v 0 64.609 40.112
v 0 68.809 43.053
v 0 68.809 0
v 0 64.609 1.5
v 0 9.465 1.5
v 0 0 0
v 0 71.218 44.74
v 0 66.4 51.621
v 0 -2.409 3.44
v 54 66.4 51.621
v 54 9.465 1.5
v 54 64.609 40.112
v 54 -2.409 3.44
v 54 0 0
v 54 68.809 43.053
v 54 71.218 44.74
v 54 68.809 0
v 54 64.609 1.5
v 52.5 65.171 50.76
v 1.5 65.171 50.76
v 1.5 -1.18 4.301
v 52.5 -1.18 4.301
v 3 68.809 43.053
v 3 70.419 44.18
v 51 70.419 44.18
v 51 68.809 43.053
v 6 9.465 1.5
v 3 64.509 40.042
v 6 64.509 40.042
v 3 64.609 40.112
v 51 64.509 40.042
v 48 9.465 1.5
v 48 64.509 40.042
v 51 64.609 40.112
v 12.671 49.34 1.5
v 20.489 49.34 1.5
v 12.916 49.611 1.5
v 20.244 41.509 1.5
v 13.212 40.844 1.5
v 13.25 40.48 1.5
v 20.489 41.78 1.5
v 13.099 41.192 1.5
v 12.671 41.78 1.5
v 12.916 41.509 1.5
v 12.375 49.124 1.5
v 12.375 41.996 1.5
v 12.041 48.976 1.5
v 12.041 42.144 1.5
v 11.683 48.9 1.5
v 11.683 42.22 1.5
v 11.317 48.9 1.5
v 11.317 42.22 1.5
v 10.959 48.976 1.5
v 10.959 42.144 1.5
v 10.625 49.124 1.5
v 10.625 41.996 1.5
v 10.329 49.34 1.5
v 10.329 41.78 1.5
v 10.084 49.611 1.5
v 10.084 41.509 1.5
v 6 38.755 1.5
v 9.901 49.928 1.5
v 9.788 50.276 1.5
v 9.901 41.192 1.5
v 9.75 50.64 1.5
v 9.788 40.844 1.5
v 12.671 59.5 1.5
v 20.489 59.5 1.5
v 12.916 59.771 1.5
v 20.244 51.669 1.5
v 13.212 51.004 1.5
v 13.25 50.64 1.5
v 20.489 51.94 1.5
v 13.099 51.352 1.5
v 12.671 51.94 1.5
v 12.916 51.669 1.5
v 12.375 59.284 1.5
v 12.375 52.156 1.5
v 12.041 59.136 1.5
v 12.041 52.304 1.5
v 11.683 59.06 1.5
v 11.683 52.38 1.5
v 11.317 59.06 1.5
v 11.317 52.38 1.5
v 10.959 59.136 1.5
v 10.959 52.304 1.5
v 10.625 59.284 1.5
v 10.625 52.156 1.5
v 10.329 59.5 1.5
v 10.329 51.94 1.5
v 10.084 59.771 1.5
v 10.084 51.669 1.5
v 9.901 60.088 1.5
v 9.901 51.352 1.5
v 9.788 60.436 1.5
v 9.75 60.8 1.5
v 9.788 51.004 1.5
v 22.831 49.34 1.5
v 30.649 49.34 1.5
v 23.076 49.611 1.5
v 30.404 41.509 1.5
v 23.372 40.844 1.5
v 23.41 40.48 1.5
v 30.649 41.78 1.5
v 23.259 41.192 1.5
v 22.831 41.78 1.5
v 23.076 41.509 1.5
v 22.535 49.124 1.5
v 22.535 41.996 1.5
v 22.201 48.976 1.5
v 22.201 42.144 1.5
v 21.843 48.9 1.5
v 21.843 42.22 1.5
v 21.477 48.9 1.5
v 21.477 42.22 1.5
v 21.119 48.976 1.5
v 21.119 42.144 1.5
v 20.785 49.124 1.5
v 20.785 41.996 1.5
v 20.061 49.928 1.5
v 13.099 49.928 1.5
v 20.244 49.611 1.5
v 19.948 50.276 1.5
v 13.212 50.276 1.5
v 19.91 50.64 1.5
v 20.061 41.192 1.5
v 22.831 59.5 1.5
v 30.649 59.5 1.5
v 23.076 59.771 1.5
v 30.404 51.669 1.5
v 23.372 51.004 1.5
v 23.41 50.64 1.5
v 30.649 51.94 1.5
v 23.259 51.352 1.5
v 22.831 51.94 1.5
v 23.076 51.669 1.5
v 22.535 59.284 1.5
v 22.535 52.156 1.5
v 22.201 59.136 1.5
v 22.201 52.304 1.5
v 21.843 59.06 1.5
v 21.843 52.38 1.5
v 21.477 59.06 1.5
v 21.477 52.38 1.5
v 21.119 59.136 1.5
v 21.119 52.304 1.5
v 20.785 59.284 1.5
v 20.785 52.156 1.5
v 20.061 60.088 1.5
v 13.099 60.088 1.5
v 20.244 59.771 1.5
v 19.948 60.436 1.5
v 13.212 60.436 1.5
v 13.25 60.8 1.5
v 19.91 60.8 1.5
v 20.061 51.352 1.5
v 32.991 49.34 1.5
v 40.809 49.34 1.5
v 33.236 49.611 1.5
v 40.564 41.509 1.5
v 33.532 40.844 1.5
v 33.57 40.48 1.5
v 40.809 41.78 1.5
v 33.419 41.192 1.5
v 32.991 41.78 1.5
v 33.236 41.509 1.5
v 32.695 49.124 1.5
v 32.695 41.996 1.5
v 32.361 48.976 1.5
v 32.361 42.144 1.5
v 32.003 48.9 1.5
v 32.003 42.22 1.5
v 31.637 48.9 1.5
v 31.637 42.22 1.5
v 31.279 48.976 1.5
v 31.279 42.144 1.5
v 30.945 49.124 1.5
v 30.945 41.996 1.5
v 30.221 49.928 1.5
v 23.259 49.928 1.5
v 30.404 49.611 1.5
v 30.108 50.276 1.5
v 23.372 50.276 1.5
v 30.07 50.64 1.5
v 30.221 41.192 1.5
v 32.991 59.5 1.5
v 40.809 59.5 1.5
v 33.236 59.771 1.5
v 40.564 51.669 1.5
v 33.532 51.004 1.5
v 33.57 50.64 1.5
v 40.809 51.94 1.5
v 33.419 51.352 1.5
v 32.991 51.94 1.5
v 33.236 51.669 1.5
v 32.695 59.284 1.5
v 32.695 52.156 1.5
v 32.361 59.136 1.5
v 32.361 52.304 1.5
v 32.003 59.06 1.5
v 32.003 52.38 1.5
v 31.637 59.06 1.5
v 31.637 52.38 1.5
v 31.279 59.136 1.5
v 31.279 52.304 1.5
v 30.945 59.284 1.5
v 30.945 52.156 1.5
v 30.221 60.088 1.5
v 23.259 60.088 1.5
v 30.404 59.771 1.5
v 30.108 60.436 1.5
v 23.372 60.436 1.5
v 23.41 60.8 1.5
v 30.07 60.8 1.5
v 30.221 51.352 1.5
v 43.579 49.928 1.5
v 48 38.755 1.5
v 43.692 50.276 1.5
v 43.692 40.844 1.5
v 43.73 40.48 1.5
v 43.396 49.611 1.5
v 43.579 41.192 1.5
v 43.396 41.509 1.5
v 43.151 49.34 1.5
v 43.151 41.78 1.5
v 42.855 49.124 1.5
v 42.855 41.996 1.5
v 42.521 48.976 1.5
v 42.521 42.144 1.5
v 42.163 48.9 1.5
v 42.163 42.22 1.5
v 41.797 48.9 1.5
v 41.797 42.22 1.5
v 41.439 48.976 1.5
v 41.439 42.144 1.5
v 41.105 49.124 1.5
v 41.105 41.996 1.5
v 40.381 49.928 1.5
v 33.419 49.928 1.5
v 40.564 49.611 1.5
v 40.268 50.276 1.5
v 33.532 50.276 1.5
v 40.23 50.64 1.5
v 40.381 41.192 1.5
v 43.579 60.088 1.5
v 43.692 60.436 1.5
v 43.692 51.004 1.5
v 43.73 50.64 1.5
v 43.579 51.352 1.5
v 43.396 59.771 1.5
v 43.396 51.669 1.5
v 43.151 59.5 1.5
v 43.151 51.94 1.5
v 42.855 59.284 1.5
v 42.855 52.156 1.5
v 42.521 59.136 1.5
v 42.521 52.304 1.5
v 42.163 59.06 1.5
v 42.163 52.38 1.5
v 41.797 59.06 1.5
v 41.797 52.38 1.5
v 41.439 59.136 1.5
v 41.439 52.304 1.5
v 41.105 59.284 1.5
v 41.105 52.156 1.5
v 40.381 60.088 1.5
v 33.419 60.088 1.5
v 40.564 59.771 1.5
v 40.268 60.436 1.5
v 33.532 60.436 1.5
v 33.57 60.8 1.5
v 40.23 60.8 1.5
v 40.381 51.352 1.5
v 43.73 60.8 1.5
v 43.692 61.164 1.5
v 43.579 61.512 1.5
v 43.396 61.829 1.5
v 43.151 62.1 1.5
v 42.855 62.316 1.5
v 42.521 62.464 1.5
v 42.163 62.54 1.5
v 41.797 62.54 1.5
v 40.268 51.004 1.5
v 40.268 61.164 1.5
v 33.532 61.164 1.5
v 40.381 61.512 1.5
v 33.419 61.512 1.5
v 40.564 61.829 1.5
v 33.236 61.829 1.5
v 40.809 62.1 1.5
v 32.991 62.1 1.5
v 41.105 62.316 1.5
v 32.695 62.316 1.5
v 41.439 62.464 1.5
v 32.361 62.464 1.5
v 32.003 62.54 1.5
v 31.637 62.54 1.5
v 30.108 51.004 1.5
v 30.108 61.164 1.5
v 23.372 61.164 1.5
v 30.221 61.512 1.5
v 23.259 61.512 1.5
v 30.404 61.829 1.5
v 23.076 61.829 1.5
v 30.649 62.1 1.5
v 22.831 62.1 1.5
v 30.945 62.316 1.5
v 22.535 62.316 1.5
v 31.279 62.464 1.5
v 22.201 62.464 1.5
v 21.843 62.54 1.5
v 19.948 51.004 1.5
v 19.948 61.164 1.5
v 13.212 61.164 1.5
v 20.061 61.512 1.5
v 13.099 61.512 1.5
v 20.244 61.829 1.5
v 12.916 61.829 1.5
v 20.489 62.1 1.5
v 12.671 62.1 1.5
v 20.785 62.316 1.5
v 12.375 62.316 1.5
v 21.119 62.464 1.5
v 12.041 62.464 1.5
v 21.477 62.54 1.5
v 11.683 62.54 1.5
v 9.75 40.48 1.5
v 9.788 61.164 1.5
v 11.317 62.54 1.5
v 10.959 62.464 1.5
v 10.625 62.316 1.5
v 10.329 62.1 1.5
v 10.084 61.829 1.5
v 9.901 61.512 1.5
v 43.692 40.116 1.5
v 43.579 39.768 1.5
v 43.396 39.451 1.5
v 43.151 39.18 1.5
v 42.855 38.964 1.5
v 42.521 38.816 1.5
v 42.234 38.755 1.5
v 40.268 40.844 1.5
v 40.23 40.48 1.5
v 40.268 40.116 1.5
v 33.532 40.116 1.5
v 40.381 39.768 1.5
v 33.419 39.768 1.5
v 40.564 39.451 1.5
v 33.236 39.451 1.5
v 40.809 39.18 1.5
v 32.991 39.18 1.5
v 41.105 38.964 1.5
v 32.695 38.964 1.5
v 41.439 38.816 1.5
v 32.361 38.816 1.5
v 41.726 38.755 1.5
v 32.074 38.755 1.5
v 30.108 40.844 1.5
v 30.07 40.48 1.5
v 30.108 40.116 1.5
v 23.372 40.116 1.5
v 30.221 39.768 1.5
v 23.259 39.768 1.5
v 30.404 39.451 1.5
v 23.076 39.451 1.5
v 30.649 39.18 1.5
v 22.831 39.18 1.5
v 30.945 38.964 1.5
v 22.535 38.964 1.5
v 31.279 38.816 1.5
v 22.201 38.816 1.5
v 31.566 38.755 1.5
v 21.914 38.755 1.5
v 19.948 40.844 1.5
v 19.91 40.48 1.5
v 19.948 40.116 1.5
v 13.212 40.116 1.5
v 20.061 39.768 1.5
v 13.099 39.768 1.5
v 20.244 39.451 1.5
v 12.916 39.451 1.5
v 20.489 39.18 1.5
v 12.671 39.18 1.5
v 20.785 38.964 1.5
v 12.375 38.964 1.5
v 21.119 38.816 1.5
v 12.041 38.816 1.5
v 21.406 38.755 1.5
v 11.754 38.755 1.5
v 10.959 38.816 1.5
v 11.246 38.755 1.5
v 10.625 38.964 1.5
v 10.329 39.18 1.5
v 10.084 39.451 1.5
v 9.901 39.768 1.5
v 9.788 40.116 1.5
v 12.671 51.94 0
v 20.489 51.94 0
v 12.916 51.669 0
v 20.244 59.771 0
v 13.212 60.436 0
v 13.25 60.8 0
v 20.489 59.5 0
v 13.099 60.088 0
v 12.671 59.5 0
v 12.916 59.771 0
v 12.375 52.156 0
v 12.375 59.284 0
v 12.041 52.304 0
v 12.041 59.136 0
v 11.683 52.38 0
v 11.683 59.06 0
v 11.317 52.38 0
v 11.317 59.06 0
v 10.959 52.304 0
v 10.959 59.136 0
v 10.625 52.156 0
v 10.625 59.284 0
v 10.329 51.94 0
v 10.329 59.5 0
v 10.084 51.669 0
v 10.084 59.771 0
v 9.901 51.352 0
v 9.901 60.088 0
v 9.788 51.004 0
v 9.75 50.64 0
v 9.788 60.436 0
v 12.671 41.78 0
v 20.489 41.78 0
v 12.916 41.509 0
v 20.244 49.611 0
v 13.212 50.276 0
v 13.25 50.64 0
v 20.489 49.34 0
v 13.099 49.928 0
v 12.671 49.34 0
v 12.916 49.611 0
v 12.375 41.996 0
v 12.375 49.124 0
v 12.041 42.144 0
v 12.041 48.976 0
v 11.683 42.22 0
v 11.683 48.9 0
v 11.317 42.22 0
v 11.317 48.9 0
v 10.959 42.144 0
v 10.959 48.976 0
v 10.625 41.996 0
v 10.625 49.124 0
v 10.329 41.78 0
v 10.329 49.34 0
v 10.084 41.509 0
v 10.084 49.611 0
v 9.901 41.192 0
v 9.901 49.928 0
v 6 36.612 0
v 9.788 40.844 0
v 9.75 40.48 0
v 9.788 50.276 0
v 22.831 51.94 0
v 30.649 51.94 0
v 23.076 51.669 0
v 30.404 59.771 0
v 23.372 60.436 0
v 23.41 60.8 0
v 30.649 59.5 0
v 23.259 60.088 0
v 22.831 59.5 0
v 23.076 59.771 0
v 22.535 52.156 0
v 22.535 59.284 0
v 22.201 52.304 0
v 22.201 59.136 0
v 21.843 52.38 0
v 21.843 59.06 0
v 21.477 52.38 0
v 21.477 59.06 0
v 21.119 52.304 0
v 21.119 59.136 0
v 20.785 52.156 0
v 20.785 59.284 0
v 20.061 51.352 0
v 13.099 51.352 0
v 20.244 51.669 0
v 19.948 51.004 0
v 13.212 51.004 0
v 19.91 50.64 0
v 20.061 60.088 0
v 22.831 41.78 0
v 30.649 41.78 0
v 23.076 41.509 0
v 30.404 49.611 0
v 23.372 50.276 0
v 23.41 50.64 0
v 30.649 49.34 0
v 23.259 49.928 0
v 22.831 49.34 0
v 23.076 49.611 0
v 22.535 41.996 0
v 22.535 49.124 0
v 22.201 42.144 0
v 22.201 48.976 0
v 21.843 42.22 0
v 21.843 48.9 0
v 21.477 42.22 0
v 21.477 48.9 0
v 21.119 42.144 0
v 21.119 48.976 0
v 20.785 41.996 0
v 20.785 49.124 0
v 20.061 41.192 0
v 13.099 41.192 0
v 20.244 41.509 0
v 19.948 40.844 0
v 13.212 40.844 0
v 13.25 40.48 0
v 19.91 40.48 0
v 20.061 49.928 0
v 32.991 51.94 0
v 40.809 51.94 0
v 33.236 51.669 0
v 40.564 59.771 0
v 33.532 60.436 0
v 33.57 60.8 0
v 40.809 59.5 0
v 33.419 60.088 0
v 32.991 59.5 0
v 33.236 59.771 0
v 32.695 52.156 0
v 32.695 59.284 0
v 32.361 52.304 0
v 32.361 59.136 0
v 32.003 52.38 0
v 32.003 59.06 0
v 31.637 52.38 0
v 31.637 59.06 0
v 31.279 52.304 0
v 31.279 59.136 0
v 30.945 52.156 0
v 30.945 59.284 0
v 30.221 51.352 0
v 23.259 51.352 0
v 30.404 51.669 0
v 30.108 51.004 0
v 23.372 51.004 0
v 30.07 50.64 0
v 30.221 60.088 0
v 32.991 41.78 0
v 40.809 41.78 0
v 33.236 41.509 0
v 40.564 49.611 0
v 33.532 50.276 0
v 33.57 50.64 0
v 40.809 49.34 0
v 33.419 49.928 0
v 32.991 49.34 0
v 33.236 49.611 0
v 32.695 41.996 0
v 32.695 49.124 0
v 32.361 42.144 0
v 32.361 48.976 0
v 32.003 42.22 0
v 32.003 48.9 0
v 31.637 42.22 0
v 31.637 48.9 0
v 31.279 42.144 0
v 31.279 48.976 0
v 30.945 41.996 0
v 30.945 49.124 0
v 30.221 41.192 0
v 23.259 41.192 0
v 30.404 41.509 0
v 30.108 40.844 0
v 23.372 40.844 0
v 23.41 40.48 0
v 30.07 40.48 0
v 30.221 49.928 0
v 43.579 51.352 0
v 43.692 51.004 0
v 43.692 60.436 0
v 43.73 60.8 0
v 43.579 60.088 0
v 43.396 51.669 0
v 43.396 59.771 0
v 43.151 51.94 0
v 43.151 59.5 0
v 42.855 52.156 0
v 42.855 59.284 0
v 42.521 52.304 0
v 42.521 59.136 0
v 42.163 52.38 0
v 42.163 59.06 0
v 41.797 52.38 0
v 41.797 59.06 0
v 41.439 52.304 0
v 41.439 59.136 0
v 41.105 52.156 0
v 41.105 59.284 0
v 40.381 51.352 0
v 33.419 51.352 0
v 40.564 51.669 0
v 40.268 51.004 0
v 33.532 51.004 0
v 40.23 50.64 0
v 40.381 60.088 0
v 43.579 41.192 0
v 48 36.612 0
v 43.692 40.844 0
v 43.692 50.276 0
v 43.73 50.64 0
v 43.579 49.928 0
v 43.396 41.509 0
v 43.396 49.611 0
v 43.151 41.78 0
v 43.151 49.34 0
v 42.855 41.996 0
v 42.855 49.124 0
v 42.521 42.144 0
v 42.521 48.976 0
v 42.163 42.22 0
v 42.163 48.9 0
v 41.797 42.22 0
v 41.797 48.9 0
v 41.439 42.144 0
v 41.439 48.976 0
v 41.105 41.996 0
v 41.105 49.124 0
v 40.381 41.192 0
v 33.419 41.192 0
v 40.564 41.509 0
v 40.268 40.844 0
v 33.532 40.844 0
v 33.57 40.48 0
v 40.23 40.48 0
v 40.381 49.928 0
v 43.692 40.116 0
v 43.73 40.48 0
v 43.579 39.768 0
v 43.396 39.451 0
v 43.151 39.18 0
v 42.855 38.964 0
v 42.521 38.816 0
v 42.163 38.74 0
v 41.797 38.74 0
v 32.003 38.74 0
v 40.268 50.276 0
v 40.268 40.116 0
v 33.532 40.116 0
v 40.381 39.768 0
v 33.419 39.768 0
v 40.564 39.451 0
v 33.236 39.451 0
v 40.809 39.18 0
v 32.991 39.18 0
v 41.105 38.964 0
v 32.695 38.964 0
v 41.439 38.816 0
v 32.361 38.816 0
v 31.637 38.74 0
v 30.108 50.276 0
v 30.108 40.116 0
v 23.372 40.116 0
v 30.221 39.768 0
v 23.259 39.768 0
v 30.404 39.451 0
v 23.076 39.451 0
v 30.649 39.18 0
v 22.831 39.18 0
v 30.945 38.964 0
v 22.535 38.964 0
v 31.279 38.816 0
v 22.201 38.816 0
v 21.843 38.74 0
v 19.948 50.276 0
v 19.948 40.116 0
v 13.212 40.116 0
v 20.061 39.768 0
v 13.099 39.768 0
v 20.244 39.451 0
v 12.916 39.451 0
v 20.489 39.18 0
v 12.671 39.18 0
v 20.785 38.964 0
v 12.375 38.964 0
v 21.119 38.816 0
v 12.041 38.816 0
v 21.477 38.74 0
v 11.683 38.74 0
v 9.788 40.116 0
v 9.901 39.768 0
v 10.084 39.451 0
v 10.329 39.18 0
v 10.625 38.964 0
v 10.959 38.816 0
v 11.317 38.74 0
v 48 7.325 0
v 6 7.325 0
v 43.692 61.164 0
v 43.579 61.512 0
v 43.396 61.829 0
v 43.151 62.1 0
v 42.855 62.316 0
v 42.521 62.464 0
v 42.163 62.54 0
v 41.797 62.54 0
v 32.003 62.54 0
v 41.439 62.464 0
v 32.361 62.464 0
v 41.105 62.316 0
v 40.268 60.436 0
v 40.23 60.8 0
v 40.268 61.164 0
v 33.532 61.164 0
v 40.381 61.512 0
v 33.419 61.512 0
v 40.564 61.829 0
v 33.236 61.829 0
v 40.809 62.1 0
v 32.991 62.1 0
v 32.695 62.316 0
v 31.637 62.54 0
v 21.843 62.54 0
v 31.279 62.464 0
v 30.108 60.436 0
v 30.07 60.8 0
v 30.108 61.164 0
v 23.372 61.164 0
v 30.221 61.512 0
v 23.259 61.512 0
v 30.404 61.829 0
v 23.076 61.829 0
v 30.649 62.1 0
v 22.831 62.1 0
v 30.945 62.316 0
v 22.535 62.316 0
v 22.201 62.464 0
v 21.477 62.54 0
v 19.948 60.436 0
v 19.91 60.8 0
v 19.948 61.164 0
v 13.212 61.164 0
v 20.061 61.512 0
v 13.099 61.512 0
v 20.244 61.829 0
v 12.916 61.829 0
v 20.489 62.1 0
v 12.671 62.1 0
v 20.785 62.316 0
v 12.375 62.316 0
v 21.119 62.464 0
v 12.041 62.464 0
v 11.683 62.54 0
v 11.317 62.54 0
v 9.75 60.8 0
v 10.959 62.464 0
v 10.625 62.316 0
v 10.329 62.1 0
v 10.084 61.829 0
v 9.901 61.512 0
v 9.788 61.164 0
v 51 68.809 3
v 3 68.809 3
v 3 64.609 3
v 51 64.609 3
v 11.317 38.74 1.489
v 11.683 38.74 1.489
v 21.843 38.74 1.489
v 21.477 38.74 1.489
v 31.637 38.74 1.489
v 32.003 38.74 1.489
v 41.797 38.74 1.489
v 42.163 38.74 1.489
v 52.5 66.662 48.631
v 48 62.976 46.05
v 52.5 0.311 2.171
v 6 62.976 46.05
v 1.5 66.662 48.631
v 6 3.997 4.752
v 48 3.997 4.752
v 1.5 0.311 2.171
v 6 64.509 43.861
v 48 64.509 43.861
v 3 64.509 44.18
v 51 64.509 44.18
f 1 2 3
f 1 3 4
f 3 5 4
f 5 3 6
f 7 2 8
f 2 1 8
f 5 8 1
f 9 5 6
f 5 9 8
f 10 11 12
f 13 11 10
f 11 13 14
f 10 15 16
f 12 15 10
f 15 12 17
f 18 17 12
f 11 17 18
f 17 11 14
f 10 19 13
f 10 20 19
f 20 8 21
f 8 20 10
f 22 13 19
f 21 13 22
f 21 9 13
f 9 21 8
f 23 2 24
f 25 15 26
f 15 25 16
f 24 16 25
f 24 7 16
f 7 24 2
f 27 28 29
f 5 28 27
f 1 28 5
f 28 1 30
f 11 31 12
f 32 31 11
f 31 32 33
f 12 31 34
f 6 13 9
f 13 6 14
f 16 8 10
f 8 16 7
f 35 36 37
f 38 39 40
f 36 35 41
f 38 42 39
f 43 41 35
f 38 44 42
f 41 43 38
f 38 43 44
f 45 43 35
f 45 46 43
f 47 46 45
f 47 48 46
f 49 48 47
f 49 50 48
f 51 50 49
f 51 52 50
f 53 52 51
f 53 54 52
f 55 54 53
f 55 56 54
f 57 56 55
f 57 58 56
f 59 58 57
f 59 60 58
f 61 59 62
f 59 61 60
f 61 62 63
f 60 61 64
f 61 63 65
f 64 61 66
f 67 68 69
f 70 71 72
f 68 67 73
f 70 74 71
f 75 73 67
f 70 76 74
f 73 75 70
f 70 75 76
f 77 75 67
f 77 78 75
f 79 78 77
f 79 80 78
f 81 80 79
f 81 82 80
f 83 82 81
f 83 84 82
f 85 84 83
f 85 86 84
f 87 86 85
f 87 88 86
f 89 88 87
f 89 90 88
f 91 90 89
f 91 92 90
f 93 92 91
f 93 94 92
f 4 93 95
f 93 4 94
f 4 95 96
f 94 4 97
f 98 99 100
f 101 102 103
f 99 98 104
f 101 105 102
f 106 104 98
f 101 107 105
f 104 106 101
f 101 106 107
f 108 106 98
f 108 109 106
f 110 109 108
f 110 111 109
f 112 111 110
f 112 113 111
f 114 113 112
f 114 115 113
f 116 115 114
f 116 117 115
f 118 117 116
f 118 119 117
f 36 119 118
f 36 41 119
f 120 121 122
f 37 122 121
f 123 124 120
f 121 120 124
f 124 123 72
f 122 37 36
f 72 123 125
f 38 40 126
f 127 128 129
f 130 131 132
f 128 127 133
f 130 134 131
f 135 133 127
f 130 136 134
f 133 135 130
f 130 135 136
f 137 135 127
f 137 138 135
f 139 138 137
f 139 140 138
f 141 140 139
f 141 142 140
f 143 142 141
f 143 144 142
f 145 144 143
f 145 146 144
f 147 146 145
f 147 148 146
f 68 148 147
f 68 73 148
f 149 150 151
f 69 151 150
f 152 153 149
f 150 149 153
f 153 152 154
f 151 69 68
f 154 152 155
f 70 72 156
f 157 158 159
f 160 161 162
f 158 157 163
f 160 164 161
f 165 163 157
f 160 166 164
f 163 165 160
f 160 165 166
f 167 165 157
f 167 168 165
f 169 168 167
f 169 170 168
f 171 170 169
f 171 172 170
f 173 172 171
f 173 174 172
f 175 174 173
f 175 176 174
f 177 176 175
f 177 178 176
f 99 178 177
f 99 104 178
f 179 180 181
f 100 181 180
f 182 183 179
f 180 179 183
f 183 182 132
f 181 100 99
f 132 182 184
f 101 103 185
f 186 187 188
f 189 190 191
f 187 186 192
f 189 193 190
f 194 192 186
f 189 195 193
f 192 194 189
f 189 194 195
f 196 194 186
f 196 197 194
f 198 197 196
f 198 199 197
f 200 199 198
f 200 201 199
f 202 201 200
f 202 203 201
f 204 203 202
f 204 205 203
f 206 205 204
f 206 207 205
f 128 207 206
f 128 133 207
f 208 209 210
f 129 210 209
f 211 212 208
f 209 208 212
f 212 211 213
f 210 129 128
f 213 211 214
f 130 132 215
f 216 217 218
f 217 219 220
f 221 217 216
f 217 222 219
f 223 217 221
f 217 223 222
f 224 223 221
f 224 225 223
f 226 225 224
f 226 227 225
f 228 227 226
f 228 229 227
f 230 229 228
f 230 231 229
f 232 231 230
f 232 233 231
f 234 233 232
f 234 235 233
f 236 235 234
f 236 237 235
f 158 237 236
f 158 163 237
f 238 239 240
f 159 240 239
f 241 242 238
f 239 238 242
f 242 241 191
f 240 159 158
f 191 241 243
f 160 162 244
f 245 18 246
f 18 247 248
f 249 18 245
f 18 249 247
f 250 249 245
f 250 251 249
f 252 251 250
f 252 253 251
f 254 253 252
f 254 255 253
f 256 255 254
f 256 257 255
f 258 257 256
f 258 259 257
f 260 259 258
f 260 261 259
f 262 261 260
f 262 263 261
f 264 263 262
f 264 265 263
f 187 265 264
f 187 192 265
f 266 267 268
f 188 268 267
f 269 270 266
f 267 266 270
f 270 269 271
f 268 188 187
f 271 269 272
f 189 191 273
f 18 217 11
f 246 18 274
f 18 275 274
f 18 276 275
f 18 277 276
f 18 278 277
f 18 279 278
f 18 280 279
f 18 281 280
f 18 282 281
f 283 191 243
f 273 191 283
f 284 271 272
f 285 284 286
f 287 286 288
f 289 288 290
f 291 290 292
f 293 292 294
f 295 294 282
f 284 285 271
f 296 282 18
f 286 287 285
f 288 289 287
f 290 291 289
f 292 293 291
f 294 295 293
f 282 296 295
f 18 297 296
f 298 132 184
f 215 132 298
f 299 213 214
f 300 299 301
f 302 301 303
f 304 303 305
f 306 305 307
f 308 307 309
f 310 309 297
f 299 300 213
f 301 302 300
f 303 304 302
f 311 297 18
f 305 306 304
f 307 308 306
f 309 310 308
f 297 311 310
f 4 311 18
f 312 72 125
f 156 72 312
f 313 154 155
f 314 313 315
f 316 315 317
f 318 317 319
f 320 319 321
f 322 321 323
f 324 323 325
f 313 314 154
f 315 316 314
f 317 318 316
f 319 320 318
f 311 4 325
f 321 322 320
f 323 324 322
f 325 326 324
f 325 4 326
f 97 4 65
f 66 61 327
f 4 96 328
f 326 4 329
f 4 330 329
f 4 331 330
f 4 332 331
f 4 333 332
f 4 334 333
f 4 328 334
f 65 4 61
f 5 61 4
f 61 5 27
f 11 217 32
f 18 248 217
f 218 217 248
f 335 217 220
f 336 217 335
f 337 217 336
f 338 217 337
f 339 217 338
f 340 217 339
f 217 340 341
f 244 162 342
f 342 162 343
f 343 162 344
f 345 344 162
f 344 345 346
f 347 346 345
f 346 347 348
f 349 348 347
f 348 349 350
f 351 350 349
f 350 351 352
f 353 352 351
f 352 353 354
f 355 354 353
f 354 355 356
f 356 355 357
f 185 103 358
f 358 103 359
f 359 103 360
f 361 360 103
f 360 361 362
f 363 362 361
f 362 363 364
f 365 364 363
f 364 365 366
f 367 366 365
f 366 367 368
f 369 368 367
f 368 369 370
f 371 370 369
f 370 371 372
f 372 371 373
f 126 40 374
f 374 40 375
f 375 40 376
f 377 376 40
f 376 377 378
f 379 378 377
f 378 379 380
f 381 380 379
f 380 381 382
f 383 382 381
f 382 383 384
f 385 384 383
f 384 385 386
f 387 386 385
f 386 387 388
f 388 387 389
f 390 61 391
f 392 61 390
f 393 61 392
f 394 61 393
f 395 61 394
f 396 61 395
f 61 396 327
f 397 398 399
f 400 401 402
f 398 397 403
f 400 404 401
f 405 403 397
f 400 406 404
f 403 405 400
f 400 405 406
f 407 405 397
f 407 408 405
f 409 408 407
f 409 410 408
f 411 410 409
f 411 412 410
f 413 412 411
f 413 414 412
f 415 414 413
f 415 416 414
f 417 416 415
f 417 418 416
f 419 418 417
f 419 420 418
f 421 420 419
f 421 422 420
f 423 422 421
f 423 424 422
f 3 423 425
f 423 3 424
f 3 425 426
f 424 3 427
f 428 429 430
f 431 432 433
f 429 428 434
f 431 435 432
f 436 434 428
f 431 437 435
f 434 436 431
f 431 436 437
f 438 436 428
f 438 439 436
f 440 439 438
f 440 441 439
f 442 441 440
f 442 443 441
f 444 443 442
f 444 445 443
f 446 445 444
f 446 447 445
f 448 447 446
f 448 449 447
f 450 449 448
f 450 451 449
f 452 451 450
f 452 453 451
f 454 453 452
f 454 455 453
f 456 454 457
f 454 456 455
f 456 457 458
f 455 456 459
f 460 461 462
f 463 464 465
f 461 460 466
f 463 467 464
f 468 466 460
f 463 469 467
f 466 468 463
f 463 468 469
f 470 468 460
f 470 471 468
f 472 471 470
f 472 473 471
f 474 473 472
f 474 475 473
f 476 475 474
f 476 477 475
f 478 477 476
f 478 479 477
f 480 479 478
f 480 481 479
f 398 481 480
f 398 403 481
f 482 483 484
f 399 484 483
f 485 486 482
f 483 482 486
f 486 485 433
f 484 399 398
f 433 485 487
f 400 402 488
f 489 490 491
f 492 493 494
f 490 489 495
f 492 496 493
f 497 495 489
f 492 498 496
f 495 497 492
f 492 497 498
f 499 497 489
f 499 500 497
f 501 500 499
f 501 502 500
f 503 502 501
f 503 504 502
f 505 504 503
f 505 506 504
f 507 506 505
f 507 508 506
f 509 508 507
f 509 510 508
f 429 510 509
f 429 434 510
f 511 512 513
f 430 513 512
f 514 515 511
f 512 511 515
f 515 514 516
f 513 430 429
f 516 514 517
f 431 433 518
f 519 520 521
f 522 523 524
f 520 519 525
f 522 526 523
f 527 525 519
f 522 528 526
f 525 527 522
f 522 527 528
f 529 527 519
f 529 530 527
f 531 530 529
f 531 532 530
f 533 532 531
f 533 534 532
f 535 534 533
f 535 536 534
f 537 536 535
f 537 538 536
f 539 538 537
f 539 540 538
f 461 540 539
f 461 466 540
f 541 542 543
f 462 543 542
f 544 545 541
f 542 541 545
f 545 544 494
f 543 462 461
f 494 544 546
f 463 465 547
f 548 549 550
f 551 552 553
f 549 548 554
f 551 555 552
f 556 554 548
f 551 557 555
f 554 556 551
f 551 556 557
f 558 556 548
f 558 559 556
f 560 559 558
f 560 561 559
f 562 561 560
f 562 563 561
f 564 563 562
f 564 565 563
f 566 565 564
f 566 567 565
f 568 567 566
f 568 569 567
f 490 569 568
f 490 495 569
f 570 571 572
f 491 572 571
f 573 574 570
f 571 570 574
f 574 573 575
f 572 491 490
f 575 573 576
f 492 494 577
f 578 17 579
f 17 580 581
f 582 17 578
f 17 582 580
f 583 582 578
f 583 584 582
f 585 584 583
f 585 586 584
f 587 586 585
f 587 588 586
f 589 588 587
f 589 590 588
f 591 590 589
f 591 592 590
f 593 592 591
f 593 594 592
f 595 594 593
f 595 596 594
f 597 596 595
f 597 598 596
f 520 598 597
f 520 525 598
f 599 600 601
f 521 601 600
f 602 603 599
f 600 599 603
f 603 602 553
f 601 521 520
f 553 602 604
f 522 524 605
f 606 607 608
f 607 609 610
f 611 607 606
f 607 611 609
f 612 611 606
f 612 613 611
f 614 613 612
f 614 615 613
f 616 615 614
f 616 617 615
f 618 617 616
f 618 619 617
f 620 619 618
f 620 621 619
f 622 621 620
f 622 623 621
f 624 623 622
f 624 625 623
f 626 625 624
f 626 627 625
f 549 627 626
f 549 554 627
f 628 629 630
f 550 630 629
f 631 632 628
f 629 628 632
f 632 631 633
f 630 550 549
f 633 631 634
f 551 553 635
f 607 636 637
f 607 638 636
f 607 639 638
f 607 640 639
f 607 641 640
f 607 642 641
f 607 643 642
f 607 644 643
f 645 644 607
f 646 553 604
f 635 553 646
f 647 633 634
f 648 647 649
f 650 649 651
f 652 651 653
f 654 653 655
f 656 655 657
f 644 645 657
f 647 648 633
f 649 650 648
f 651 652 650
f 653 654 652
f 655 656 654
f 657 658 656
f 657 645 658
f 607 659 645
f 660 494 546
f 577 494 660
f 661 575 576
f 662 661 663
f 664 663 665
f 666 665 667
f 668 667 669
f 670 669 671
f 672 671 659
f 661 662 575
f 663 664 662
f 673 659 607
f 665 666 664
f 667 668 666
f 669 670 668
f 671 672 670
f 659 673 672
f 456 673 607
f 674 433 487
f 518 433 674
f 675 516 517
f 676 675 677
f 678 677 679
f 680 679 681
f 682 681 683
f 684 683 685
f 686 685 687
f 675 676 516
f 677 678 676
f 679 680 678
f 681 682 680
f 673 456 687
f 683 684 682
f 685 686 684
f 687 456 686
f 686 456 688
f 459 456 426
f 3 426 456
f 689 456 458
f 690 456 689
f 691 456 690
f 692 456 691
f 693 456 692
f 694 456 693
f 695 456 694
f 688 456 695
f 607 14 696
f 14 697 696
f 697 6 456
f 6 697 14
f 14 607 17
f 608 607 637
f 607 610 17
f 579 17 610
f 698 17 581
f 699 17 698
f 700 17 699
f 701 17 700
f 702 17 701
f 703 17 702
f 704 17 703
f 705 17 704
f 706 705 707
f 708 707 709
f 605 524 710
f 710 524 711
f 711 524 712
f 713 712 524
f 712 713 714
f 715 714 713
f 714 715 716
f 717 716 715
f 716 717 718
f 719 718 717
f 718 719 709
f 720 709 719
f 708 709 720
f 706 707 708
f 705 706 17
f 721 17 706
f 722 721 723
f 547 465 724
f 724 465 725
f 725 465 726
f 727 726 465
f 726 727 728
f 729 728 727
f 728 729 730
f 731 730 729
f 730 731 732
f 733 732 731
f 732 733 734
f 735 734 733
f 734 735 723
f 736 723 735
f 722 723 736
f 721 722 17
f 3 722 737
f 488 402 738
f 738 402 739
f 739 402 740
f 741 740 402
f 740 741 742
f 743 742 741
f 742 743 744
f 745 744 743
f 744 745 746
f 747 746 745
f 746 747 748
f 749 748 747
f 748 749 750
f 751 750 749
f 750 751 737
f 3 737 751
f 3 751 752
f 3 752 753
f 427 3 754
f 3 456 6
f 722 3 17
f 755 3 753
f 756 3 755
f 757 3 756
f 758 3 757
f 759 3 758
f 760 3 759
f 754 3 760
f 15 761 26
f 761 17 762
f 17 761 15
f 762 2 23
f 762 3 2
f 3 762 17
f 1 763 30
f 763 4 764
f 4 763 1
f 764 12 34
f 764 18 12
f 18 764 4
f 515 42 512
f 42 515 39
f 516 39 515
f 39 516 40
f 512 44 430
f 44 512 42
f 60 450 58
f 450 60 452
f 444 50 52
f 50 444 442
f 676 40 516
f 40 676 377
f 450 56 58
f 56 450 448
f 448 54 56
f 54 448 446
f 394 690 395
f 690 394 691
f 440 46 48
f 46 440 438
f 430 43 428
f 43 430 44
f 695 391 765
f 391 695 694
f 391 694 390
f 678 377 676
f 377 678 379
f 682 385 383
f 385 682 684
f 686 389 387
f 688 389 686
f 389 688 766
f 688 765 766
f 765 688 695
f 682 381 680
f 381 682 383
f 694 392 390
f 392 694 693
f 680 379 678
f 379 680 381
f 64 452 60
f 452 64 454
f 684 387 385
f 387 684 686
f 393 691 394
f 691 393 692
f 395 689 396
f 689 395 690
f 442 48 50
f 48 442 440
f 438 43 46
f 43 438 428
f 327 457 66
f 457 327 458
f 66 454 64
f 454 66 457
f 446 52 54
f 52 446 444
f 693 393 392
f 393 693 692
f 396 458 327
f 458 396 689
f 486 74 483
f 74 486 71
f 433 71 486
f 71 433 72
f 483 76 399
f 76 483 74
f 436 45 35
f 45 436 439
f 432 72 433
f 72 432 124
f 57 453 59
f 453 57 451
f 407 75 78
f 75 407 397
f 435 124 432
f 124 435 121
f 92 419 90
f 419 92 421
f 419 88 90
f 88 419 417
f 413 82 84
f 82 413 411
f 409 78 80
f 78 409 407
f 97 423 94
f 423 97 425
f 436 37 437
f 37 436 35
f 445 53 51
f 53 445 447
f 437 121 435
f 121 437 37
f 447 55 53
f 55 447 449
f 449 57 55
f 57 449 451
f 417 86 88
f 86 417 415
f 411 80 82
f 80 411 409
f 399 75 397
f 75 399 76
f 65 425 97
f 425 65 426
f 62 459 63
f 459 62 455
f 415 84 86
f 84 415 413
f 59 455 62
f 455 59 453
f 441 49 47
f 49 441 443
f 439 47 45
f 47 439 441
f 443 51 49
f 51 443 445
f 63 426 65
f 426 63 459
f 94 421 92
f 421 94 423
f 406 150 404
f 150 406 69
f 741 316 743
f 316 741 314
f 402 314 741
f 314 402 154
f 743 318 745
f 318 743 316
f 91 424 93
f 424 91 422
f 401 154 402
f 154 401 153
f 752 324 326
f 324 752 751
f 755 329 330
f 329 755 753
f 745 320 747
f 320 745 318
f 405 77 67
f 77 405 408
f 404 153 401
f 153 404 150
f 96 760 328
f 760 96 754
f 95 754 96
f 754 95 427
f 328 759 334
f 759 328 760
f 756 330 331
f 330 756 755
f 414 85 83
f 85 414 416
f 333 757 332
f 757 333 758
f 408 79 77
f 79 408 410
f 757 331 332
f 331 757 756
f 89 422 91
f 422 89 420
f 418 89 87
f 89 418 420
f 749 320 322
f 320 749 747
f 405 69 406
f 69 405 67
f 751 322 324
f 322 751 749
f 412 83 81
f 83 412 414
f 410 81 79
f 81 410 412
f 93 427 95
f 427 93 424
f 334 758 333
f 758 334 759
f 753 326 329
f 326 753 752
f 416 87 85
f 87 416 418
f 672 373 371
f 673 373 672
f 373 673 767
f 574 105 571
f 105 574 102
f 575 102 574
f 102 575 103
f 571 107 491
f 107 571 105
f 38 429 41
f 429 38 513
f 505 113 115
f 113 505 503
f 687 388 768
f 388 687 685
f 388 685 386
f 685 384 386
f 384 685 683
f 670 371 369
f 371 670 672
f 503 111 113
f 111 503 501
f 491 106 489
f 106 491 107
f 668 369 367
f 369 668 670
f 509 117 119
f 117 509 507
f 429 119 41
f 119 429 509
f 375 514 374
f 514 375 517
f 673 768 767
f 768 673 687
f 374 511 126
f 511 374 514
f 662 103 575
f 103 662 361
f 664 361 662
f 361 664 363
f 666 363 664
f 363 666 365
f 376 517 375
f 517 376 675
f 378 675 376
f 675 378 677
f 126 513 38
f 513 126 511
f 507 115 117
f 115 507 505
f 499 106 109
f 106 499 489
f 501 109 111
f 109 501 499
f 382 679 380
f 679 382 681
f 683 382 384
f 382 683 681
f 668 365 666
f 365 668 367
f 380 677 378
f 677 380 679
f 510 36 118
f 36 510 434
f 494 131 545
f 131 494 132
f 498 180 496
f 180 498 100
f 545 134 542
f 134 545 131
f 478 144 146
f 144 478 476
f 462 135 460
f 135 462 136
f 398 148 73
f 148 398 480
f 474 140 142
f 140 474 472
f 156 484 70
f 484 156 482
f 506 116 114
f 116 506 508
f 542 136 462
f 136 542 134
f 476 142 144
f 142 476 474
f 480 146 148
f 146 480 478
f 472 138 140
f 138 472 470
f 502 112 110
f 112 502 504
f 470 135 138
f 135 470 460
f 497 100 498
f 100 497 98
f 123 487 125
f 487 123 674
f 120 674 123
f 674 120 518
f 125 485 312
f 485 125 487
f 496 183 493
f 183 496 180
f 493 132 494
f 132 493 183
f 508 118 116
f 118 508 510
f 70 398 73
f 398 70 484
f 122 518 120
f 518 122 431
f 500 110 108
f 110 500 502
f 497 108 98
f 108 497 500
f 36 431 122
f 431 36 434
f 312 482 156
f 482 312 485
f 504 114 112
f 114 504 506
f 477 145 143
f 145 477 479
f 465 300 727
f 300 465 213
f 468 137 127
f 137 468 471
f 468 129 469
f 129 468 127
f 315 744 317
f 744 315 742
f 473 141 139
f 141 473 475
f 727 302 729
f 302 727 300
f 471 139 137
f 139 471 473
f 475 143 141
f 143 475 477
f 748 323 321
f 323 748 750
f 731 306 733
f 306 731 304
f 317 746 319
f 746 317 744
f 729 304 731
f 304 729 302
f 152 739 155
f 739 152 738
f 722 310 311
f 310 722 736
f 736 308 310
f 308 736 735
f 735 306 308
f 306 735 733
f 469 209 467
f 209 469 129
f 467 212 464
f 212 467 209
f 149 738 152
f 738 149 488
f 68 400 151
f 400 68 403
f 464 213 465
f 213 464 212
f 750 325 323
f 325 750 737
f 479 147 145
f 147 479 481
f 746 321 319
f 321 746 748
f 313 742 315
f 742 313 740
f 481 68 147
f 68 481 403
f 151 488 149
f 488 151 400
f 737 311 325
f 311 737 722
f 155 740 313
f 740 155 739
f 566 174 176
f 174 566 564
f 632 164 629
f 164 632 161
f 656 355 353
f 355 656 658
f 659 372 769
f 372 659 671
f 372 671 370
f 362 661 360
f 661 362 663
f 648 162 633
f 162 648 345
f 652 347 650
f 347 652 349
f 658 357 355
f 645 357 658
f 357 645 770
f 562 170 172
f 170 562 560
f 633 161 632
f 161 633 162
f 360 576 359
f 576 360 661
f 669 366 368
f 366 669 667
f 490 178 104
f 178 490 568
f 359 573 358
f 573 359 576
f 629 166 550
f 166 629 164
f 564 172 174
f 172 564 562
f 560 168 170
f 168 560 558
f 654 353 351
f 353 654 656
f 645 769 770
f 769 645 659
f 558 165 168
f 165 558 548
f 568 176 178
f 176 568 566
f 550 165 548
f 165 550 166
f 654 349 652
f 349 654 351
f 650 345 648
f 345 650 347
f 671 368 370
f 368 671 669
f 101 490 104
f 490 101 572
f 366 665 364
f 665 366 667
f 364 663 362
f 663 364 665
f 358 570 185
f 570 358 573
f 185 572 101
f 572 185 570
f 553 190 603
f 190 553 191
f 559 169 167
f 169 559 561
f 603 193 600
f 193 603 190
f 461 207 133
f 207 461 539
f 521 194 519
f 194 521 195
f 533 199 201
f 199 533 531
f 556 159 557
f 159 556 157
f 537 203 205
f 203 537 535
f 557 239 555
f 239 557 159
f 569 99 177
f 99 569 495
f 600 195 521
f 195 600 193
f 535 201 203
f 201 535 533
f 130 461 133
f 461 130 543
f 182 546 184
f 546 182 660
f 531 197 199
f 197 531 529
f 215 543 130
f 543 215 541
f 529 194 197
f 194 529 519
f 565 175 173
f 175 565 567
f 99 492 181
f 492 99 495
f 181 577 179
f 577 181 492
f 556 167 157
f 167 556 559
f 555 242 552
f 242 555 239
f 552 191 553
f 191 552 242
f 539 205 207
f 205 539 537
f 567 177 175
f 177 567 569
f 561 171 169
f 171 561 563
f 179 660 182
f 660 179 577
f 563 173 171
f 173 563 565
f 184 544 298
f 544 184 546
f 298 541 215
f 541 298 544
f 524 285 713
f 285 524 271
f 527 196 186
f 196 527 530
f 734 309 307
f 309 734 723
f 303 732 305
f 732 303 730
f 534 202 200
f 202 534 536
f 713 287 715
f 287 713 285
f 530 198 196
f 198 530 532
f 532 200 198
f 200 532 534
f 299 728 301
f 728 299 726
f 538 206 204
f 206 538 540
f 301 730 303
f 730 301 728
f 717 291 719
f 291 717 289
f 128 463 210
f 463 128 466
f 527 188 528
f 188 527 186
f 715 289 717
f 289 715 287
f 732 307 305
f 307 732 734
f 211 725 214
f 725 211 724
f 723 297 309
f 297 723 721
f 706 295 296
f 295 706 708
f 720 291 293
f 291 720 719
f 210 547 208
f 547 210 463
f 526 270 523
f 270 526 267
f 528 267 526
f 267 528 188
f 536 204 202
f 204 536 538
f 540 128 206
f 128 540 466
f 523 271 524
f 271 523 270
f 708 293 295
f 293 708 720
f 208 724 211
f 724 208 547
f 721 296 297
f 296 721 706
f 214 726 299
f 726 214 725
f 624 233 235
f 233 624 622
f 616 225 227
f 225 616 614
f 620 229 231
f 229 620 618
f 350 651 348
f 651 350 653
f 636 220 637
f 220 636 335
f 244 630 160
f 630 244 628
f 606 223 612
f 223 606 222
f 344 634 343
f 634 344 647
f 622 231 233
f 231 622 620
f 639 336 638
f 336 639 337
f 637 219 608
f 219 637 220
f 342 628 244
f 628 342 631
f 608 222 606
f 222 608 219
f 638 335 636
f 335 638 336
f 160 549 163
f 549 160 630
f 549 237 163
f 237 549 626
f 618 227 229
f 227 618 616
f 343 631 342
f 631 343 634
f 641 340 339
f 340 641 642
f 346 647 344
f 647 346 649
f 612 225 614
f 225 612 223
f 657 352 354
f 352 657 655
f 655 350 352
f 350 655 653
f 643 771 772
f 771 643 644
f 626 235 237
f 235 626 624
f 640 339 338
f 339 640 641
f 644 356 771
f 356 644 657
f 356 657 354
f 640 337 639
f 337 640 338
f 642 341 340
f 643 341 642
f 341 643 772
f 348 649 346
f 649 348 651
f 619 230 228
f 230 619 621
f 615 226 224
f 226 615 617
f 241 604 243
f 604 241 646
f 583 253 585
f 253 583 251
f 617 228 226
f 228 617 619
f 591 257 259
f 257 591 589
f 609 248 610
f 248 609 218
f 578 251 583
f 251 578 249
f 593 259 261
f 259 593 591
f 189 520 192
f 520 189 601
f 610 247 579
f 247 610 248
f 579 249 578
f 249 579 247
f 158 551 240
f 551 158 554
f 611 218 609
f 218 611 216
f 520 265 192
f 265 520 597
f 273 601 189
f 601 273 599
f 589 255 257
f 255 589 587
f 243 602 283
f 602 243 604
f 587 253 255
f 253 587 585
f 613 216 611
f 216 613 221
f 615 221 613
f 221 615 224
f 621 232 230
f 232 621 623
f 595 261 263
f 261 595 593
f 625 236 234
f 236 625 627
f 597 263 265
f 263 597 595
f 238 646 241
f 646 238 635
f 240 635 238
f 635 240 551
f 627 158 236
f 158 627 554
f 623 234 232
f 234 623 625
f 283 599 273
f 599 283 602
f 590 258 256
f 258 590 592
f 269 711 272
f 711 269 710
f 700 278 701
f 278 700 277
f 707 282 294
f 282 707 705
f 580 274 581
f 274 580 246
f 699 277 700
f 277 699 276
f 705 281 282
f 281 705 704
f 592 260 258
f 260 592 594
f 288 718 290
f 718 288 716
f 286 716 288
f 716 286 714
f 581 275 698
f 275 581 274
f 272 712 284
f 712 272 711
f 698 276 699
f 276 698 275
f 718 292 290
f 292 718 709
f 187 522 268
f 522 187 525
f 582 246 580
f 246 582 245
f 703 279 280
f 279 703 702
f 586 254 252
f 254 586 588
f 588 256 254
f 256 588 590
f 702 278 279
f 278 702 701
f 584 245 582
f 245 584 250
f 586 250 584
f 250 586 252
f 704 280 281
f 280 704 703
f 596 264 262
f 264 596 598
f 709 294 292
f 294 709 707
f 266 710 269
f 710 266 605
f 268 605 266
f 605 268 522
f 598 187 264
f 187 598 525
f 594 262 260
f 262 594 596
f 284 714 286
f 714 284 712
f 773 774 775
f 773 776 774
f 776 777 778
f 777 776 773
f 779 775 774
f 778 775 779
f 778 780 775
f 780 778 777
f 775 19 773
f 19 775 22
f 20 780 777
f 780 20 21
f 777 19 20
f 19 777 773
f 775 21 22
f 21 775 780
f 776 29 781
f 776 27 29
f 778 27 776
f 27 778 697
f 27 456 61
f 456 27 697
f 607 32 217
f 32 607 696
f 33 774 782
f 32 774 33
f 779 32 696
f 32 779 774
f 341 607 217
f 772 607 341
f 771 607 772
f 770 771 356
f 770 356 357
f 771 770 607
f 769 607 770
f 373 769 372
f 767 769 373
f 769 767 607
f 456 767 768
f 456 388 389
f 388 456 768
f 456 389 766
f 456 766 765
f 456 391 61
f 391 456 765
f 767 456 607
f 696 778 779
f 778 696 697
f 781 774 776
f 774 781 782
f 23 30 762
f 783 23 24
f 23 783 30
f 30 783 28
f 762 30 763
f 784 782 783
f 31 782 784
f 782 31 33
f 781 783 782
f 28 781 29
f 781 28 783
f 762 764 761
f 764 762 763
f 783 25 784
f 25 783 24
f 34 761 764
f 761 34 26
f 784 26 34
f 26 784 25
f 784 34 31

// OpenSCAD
$fn=30;
INCH = 25.4;
MLAB_G = 10.16;

module support_screw_end(Nuts, Wall, Height){
	for(nut = [0 : Nuts-1]){
	translate([-(Nuts-1)/2*MLAB_G + nut*MLAB_G, -1.5/2*INCH-Wall+6, Height/2]) 
			rotate([90,0,0]) cylinder(10, 3.7/2, 3.7/2);
	translate([-(Nuts-1)/2*MLAB_G + nut*MLAB_G, -1.5/2*INCH-Wall+10+2, Height/2])
			rotate([90,0,0]) cylinder(10, 7.8/2, 7.8/2);
	translate([-(Nuts-1)/2*MLAB_G + nut*MLAB_G, -1.5/2*INCH-Wall-1, Height/2])
			rotate([90,0,0]) cylinder(100, 7.8/2, 7.8/2,$fn=6);
	}
}

   
module MlabSolarHolder(){
	Height = 10;
	Wall = 100;
	Nuts = 3;
	Distance = 5;
	Diameter = 1.5;
	
	difference(){
        //cube([55, 100, 100]);
//		difference(){
//			translate([-(Distance*MLAB_G)/2-MLAB_G/2,-50,0]) cube([(Distance*MLAB_G)+MLAB_G,50,100]);
//			rotate(a=[-35,0,0]) translate([-(Distance*MLAB_G)/2-MLAB_G/2,-100,-100]) #cube([(Distance*MLAB_G)+MLAB_G,50,300]);
	//	}
		translate([-(Diameter/2*INCH+Wall),0,0]) cube([(Diameter*INCH/2+Wall)*2,Diameter*INCH/2+Wall,10]);
		support_screw_end(Nuts, Wall, Height);
		
		for(dist = [0 : Distance]){
			translate([-(5)/2*MLAB_G + dist*MLAB_G,0,Height/2]) 
					rotate([90,0,0]) cylinder(Wall, 3.8/2, 3.5/2);
			translate([-(5)/2*MLAB_G + dist*MLAB_G,-2,Height/2])
					rotate([90,0,0]) #cylinder(Wall, 1.6/2, 1.6/2, $fn=6);
		}
	}
}


module SolarHolder(){
    width = 51;
    length = 81;
    angle = 35;
    border = 3;
    wall = 4.2;
    
	difference(){
        //cube([width, length, length*2]);
        union()
        {
            rotate([angle,0,0]) translate([0,0,-wall]) cube([width+border, length+border, 2*wall]); // horni
            rotate([0,0,0]) translate([0,0,0]) cube([width+border, (length+border)*cos(angle), border/2]); // dolni
            rotate([90,0,0]) translate([0,0,-(length+border)*cos(angle)]) cube([width+border, (length+border)*sin(angle), wall]); // zadni           
        }
        rotate([0,0,0]) translate([-border/2,0,-2*border]) cube([width+2*border, (length+border)*cos(angle), 2*border]); // spodni rovina
        rotate([angle,0,0]) translate([border/2,border/2,1.6]) cube([width, length, wall*2]); // ramecek pod clankem
        rotate([angle,0,0]) translate([border*2,border*2,-5*wall]) cube([width-3*border, length-3*border, wall*6]); // dira pod clankem 
        rotate([90,0,0]) translate([3,3,-(length+border)*cos(angle)-wall]) cube([width+border-6, (length+border)*sin(angle)-7, 2*wall+0.1]); // dira zadni  
        
        //rotate([angle-90,0,0]) translate([(width+border)/2,30,0]) support_screw_end(3, 0, length); // holes
        //#rotate([-90,0,0]) translate([width/2,0,0]) support_screw_end(1, -30.1, length);
        //translate([width/2, length/2, -10]) rotate([0,0,0]) cylinder(100, 8.6/2, 8.6/2);
 MLAB_grid_xoffset = 11.5;//3.88;
MLAB_grid_yoffset = 10;
MLAB_grid = 10.16;       
pedestal_height = 2;   // designed for use the MLAB standard 12mm screws.
mount_hole = 3.5;
clear = 0.175;        

            // MLAB grid holes
    grid_list = [for (j = [MLAB_grid_xoffset : MLAB_grid: width], i = [MLAB_grid_yoffset :MLAB_grid: (length+border)*cos(angle)]) [j, i] ];
    for (j = grid_list) {
            translate (concat(j, [0]))
            cylinder (h = 2*pedestal_height, r= mount_hole/2);
    }

    }
}

SolarHolder();
